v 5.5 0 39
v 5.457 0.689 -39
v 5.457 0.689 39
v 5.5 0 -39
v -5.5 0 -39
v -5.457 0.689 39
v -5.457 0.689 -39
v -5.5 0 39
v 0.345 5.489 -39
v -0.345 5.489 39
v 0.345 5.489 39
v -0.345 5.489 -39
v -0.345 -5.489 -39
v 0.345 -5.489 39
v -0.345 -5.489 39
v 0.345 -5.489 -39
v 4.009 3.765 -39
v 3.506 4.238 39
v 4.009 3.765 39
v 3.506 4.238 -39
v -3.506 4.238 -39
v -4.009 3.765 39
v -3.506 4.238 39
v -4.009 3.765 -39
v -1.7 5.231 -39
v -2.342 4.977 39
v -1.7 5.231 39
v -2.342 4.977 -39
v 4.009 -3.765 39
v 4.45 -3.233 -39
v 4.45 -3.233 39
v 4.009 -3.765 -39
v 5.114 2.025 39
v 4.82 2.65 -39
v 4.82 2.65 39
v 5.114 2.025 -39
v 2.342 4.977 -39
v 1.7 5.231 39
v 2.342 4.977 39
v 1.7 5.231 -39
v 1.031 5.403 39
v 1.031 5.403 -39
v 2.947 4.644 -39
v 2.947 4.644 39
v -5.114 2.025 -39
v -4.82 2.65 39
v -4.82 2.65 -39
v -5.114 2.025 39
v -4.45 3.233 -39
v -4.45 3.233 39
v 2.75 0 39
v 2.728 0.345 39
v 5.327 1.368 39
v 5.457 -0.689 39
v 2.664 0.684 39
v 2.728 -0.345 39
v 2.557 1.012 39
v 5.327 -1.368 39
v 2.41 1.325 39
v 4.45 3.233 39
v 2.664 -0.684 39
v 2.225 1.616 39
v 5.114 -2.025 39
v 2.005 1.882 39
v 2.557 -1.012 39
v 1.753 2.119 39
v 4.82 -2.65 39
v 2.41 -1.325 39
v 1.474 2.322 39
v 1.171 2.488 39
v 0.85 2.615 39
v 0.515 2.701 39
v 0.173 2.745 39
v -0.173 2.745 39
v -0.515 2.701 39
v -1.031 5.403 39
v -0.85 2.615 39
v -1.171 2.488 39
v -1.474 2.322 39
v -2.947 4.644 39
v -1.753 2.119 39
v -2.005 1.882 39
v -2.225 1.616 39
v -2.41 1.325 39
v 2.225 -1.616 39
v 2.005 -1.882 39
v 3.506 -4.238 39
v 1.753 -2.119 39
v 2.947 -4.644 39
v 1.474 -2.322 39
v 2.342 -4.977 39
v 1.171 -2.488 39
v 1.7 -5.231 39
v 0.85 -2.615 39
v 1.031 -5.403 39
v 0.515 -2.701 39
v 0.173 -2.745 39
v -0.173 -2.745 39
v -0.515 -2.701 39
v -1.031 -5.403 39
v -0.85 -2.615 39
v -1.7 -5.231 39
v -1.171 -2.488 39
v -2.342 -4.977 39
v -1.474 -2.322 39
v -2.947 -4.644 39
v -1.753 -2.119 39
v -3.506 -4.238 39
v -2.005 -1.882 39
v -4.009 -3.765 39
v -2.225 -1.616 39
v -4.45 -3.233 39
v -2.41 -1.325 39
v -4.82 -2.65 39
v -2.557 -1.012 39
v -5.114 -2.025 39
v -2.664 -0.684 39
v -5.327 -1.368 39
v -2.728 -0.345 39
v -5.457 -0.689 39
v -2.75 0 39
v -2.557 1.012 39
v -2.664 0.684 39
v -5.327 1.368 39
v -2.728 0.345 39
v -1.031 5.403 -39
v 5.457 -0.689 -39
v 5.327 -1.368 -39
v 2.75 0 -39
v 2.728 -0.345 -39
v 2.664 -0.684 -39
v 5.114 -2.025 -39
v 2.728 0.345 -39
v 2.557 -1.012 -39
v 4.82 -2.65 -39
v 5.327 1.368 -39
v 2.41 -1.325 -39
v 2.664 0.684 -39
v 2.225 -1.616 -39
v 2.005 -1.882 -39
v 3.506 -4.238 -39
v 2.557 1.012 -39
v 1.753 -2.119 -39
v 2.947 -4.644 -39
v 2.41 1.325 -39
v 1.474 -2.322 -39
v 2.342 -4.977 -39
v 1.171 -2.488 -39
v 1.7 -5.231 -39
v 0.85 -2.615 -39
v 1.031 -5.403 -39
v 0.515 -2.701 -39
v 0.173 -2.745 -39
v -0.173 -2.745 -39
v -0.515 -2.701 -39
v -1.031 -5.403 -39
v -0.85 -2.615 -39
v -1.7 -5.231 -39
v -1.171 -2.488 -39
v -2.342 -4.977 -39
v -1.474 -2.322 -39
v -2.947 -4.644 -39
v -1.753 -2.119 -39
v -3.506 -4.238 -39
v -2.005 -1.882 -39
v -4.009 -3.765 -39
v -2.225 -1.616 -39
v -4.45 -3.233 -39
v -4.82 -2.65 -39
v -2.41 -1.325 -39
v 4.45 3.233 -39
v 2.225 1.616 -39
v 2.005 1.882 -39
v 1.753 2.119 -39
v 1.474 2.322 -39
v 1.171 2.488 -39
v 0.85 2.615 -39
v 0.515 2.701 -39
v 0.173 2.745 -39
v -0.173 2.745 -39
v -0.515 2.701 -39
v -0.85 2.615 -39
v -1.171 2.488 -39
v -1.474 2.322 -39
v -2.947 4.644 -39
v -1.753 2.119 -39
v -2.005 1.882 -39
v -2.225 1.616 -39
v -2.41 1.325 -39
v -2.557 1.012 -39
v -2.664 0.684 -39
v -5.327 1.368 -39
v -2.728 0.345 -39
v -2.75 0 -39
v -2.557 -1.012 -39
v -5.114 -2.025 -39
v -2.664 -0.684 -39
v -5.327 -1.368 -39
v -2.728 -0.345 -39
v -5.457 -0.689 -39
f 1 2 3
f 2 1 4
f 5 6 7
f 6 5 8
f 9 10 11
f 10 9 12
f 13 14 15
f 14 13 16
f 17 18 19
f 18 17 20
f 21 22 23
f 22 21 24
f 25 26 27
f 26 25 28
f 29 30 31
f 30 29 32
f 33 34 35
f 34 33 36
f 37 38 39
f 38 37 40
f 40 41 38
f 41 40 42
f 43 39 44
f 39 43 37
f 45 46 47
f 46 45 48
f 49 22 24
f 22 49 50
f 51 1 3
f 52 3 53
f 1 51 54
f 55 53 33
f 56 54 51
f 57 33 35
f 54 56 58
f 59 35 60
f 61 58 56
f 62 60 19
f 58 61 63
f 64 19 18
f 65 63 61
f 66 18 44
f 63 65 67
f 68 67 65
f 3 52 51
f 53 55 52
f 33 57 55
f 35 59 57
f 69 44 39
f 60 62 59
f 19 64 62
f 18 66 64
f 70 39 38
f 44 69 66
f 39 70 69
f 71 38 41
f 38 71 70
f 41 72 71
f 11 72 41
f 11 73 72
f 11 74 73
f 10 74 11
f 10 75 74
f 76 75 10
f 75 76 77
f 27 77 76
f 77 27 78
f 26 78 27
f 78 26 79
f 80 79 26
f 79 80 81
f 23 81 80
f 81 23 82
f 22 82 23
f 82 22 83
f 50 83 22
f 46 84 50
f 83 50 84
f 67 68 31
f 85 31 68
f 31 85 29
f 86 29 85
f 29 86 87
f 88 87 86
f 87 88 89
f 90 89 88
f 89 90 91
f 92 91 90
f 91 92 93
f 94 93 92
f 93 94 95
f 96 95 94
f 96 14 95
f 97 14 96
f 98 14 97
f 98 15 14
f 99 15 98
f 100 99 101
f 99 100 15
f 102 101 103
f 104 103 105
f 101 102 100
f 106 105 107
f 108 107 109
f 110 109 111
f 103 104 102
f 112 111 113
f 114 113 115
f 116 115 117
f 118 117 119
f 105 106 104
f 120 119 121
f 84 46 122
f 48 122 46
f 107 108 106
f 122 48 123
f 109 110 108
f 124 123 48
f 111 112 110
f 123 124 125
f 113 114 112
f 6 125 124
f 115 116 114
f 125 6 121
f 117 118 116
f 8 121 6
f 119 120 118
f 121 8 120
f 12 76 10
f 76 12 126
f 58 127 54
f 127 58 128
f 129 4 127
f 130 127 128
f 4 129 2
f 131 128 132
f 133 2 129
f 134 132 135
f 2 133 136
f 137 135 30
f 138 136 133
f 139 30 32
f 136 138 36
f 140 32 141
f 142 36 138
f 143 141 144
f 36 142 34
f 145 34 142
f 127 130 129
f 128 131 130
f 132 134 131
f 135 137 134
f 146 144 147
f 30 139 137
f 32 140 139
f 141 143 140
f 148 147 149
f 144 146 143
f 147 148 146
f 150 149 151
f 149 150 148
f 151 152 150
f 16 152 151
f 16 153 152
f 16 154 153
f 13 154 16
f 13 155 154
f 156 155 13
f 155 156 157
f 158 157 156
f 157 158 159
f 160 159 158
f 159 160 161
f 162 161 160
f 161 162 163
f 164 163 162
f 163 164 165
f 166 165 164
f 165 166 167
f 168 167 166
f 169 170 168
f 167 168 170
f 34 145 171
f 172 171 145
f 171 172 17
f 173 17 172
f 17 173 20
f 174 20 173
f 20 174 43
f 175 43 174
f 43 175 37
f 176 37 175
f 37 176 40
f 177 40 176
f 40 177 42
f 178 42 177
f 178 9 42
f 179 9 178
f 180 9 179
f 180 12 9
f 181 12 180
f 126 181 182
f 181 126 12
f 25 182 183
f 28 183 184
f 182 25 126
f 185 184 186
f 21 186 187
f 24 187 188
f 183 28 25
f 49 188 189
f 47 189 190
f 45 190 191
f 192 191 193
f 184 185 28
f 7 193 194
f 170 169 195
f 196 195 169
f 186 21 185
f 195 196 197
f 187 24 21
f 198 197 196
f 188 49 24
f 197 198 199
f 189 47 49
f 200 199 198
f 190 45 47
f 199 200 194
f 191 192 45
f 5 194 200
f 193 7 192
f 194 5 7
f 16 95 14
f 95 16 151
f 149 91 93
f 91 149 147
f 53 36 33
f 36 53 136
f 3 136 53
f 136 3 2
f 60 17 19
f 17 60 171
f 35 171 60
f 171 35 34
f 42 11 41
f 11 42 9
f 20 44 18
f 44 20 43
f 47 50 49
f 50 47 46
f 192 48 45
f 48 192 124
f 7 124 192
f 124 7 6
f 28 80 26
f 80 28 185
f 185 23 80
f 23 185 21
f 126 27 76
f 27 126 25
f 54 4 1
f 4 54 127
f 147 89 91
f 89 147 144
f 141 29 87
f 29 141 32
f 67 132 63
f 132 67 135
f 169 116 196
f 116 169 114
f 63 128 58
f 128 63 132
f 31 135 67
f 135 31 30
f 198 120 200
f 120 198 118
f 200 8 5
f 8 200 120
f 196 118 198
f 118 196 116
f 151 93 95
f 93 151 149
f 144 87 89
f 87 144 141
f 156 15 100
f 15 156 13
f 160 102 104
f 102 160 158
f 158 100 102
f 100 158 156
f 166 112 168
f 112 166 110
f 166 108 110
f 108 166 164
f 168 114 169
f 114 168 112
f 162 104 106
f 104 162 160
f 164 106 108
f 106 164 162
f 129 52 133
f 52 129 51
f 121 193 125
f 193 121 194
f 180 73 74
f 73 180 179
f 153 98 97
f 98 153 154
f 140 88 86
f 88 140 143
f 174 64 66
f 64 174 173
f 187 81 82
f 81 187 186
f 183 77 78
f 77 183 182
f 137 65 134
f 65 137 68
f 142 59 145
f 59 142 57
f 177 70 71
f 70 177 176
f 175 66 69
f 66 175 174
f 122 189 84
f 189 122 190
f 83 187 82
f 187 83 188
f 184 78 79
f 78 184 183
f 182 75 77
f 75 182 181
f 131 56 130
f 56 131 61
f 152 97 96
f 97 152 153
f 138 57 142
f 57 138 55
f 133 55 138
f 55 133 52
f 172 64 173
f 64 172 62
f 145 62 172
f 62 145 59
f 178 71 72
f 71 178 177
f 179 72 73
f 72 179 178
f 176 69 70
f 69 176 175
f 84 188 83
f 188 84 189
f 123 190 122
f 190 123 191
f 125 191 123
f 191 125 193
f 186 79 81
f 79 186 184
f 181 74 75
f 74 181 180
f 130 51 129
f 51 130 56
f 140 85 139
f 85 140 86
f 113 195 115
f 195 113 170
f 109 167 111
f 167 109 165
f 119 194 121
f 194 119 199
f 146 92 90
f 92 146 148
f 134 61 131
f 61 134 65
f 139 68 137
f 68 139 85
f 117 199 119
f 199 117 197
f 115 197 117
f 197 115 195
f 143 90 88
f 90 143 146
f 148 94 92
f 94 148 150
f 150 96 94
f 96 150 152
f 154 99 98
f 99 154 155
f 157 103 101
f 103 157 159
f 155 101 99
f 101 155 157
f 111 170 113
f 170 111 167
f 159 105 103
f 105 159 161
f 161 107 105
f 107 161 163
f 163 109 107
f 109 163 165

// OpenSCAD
$fn = 50;


difference() {
	union() {
		translate(v = [0, 0, -39.0000000000]) {
			cylinder(h = 78, r = 5.5000000000);
		}
	}
	union() {
		translate(v = [0, 0, -100.0000000000]) {
			cylinder(h = 200, r = 2.7500000000);
		}
	}
}
